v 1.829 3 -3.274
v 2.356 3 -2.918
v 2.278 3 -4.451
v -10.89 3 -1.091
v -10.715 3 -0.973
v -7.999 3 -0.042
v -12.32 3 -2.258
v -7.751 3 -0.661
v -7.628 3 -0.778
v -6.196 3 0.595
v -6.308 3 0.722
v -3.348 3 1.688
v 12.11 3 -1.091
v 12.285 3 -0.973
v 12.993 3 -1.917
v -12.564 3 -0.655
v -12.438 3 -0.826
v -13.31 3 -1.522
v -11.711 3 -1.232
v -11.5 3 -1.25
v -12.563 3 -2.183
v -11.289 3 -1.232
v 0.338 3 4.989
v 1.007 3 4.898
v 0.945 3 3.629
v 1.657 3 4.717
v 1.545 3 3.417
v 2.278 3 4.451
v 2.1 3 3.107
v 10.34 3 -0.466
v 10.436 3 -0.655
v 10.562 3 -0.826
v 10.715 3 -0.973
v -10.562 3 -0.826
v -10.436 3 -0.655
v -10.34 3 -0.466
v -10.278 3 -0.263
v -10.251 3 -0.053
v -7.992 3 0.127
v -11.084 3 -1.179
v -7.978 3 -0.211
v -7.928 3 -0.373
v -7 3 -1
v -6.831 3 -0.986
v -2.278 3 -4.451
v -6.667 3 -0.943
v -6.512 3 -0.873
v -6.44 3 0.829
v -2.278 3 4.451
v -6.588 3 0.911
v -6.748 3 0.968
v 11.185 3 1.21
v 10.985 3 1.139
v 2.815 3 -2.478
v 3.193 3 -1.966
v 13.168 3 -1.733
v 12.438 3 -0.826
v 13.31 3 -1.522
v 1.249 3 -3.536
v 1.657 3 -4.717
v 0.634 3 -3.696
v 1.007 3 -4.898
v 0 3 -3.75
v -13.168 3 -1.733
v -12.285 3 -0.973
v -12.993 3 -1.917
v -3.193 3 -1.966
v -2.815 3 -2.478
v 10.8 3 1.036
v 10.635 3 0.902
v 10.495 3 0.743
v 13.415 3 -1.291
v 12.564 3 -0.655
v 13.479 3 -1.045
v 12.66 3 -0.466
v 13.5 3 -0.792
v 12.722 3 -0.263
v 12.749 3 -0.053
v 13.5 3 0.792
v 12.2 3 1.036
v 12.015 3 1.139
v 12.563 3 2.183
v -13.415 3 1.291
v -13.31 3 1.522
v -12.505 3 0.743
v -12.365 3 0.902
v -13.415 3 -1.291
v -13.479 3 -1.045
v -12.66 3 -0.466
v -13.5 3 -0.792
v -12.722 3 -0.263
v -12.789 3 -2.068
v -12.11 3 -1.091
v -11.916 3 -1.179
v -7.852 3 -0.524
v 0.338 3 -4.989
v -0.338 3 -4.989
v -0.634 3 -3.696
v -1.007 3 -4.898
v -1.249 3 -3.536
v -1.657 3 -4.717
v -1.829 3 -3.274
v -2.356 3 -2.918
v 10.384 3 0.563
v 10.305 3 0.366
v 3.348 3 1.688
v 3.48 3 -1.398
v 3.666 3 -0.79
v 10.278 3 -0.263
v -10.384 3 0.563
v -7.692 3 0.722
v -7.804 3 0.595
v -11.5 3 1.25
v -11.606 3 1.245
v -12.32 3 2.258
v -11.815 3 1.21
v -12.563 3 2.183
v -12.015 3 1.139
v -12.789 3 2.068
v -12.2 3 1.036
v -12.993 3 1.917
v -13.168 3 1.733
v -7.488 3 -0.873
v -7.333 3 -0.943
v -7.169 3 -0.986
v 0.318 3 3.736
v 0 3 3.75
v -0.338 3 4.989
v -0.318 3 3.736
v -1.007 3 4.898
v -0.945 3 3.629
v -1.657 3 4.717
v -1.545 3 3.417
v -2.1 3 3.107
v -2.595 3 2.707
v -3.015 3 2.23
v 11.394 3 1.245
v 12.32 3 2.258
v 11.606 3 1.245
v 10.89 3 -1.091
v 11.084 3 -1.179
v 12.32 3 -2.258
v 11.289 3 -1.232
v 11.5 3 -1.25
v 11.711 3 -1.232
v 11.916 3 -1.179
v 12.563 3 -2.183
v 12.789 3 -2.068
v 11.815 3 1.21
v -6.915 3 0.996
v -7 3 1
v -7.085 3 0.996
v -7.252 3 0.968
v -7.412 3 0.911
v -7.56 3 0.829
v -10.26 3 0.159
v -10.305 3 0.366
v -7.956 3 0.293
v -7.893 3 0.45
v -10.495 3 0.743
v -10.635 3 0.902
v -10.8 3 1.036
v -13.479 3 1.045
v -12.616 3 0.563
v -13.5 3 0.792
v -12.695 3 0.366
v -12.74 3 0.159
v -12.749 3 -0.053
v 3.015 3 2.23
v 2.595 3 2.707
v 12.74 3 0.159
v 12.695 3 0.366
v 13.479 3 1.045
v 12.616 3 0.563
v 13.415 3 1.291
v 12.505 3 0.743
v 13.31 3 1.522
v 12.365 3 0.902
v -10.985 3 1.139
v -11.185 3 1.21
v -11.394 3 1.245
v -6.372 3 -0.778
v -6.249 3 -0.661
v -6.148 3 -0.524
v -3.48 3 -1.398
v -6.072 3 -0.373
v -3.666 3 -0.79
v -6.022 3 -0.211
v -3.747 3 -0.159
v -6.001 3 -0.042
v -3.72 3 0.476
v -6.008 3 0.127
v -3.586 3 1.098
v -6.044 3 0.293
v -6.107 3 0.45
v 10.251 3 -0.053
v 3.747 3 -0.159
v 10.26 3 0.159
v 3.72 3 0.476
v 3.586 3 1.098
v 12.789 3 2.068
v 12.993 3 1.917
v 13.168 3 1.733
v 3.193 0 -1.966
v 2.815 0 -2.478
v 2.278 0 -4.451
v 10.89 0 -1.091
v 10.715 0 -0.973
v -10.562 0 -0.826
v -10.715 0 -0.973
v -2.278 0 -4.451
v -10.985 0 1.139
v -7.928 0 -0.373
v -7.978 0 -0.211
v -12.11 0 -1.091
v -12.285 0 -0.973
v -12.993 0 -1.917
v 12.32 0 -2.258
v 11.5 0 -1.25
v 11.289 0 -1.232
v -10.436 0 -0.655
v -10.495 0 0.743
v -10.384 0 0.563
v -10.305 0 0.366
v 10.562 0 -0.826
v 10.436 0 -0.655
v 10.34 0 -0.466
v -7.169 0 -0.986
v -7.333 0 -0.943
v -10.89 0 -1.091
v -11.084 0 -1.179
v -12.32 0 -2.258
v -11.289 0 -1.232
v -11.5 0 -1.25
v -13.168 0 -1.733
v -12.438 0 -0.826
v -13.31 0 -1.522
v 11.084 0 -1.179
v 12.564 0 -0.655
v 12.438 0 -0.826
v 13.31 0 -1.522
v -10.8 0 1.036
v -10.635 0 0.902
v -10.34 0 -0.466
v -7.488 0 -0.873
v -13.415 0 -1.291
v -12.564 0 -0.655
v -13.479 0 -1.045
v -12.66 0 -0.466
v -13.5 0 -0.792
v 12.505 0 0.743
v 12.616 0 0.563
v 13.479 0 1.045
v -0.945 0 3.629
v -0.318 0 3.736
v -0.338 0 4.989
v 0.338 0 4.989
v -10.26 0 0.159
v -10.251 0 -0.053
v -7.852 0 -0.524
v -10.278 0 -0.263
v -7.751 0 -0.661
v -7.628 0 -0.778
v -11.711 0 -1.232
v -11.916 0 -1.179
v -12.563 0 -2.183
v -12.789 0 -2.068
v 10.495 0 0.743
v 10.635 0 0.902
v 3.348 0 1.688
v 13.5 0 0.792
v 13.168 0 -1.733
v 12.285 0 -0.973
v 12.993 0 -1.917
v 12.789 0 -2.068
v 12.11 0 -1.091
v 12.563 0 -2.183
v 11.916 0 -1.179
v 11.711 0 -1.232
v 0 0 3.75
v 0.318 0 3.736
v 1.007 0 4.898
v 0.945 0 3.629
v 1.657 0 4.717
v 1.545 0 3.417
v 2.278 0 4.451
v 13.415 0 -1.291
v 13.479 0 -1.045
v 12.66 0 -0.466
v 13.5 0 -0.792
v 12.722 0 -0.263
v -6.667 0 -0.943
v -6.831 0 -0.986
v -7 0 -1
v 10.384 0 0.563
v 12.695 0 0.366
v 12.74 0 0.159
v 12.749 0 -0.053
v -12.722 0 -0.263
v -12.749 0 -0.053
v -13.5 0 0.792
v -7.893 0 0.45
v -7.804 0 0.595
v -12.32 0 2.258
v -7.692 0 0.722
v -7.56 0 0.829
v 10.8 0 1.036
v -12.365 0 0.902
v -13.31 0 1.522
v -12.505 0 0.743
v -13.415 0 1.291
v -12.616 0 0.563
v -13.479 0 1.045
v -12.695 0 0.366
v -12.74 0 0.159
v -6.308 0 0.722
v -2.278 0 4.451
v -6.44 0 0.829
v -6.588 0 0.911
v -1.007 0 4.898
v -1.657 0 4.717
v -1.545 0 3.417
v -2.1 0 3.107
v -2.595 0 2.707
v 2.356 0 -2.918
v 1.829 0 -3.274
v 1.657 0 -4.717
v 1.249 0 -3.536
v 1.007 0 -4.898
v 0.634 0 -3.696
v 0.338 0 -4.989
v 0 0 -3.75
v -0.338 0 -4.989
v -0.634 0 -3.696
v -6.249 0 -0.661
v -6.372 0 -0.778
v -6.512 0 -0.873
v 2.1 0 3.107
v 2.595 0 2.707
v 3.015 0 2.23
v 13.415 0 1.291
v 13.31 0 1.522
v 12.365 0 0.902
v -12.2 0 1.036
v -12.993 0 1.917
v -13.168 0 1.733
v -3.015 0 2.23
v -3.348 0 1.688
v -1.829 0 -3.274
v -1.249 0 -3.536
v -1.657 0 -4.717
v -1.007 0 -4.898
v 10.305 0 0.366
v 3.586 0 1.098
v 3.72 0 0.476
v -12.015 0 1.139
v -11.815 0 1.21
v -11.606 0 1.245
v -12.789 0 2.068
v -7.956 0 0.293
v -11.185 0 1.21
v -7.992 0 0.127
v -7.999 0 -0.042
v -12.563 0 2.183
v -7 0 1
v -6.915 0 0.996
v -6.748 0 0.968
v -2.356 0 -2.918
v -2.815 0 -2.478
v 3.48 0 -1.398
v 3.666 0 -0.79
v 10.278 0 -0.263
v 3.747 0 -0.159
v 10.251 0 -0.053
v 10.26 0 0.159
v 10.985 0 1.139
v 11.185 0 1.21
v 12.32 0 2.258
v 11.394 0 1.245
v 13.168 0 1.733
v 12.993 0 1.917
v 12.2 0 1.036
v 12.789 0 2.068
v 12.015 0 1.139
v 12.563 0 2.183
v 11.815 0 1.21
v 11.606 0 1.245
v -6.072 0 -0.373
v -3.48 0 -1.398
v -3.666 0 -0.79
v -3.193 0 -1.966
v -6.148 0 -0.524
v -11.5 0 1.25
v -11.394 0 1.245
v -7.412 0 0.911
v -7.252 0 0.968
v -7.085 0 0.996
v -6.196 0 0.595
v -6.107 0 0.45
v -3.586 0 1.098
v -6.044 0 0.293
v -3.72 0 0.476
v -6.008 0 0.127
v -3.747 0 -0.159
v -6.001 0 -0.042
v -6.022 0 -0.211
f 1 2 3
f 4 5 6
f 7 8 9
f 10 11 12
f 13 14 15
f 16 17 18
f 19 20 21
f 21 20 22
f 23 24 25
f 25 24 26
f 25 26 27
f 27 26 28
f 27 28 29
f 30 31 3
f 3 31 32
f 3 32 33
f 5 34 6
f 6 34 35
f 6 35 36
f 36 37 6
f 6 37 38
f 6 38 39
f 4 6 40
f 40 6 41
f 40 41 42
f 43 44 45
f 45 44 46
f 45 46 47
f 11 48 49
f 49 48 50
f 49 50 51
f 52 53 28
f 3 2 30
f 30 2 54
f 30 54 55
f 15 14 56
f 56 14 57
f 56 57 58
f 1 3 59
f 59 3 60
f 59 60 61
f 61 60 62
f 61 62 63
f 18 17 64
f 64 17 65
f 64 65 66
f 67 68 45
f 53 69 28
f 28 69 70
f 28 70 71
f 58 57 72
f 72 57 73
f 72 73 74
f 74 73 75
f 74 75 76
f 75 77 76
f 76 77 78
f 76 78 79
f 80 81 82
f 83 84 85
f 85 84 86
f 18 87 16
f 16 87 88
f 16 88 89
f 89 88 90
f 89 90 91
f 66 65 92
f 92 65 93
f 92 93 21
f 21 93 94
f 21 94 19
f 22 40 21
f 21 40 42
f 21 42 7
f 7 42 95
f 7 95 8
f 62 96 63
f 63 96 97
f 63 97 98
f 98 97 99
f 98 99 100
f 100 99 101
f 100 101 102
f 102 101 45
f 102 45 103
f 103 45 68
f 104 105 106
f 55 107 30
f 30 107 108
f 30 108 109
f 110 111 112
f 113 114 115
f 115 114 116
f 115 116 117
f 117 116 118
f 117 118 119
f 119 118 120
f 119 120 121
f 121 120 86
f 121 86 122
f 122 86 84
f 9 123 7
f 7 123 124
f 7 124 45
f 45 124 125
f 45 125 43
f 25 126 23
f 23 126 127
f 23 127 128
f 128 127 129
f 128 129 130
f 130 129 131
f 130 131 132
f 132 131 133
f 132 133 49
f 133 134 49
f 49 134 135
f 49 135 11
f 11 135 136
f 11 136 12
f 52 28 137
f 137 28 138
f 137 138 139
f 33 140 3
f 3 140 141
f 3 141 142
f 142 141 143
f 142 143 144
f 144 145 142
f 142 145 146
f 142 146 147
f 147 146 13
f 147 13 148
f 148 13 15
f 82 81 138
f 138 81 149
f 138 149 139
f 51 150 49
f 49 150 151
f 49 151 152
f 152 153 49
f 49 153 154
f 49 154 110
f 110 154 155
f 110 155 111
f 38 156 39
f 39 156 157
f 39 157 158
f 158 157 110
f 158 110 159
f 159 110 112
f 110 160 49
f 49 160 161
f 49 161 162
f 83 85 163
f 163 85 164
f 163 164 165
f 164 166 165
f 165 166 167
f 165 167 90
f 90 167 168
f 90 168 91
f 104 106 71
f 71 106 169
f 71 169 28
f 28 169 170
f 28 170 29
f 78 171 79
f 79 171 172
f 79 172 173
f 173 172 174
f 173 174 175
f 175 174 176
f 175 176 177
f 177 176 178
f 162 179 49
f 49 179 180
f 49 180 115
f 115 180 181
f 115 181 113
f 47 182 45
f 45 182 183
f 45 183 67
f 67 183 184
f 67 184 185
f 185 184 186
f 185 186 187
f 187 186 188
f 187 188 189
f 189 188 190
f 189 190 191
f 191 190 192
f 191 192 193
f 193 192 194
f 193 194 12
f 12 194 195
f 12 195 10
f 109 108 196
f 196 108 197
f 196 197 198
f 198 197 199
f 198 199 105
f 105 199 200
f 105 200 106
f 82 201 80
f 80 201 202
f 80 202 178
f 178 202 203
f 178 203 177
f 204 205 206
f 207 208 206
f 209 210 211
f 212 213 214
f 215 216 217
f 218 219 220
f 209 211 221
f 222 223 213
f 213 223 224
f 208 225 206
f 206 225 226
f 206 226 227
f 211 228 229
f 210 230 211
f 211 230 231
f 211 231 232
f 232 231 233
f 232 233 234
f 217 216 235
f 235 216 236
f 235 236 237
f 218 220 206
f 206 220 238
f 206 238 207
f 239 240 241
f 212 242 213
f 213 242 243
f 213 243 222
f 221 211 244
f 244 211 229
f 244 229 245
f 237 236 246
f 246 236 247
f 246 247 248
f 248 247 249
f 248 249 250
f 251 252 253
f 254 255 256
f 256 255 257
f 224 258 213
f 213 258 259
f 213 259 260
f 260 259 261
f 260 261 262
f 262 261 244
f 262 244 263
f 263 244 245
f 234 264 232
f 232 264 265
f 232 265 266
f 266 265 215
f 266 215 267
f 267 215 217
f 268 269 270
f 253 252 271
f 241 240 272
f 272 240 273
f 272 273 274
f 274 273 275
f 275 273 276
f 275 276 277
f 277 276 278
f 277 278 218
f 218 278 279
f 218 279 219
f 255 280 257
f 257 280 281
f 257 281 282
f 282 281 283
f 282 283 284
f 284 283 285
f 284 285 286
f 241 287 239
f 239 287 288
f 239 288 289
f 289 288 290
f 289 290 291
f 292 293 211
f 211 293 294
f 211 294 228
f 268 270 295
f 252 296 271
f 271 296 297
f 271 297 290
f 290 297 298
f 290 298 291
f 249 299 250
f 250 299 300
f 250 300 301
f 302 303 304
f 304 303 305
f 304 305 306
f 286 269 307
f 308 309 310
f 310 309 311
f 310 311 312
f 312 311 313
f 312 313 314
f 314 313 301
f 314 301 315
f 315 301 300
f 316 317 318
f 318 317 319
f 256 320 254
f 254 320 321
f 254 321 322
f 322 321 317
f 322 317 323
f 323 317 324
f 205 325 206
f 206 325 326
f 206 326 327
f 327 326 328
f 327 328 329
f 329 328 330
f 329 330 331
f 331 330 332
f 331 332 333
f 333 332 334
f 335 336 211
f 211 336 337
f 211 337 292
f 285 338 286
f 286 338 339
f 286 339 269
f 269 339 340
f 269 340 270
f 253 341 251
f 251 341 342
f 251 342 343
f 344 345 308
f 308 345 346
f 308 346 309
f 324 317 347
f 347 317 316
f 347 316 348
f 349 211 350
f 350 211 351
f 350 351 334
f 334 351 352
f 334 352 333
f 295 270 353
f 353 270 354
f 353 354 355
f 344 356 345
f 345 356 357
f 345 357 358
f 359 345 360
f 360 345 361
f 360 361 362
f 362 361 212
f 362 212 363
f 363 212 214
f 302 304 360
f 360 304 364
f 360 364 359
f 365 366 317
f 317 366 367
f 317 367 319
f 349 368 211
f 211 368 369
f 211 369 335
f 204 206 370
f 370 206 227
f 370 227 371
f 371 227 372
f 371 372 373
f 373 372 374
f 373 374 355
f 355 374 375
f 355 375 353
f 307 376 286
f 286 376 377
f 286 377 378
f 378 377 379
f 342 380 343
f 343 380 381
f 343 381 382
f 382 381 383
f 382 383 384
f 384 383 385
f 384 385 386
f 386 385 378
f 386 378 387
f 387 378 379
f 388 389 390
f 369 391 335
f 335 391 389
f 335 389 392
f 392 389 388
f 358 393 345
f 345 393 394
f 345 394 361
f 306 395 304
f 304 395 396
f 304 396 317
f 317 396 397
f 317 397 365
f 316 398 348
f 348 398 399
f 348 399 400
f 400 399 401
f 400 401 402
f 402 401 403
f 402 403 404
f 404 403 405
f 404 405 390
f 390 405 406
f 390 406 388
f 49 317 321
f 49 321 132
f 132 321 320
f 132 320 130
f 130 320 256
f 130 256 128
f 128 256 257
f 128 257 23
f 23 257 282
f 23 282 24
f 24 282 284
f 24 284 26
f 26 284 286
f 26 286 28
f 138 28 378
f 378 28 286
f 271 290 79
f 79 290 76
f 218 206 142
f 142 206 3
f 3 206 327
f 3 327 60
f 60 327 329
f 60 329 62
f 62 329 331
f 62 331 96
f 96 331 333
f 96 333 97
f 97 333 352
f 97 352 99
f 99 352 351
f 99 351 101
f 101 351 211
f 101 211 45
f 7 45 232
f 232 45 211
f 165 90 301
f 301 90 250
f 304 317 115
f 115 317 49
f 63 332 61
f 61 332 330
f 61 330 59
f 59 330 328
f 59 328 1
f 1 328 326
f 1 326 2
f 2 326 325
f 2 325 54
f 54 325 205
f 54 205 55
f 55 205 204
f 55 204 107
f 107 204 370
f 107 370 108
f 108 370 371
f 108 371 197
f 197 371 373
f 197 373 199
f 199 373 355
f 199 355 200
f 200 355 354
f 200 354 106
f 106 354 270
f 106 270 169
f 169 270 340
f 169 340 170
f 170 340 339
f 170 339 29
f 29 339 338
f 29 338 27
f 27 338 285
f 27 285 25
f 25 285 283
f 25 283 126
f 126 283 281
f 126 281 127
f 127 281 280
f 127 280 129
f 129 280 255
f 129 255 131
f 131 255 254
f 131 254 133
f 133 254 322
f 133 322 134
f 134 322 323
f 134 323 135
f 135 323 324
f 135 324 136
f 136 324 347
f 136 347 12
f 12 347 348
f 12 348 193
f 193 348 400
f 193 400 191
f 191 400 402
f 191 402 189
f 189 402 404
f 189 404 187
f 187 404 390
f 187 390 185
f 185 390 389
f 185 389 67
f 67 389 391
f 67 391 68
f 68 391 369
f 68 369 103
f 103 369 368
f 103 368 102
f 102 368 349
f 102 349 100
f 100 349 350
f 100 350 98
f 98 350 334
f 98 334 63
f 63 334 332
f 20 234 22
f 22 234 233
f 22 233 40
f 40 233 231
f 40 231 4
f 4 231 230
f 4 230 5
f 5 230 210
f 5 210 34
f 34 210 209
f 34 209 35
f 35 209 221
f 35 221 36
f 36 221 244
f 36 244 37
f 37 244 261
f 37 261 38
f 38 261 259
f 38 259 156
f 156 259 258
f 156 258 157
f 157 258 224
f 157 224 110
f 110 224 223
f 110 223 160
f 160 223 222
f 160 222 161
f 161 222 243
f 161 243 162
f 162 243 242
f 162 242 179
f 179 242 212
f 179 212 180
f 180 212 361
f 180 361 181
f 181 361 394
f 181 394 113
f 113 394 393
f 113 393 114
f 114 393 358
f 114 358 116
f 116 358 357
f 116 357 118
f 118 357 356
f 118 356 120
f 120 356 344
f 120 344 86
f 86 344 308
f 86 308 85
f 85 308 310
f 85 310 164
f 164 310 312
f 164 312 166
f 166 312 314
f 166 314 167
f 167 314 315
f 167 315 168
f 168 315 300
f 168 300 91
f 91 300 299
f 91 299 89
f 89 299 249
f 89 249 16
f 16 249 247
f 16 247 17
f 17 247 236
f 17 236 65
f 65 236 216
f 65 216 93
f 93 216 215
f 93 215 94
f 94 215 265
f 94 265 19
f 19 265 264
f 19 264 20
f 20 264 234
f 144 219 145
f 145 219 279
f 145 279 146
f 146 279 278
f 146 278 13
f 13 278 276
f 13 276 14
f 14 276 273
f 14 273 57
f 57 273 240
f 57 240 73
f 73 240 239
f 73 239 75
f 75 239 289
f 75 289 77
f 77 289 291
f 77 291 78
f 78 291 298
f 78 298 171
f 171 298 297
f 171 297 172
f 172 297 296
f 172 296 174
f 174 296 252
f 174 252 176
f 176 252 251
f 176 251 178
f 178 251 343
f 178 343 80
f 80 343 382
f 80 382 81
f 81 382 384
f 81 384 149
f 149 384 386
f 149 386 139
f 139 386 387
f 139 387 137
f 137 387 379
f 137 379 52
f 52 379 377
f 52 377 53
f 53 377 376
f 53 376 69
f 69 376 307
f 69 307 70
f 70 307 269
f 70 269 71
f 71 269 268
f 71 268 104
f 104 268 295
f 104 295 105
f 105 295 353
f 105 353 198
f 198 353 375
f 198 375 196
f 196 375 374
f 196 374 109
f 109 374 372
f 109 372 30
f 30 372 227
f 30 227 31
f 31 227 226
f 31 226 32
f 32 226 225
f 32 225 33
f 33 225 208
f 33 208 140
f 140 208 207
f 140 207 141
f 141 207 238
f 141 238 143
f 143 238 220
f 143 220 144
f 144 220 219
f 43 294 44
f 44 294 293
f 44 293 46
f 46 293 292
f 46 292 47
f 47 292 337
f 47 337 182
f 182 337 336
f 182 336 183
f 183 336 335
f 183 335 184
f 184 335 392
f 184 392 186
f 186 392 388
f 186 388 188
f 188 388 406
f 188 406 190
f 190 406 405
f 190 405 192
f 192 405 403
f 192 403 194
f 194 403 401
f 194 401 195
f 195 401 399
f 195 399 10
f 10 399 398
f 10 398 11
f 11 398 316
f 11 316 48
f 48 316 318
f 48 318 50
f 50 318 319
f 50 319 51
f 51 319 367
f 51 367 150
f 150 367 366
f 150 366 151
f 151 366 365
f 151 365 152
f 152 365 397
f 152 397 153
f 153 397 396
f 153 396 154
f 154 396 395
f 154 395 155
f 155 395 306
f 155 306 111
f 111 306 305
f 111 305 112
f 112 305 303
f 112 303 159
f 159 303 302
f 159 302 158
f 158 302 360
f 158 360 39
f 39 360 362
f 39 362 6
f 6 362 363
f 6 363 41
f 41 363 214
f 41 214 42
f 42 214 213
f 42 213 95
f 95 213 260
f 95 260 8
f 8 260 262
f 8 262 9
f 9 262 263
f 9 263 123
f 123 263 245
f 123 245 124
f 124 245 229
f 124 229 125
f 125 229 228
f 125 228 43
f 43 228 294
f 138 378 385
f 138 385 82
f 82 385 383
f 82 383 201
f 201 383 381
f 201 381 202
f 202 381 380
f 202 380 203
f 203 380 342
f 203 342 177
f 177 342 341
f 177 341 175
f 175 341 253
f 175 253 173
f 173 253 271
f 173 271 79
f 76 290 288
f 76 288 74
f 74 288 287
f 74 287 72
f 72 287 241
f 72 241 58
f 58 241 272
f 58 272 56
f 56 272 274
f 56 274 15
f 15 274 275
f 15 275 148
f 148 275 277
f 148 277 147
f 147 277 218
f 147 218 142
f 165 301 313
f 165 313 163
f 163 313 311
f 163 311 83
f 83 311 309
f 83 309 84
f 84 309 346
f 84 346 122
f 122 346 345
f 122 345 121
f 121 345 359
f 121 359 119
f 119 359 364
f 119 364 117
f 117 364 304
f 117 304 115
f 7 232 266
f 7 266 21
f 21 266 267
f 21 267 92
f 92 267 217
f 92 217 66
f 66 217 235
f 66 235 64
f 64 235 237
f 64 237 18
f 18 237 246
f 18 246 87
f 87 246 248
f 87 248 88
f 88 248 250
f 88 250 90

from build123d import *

# Parameters (mm, degrees)
SKETCH1_R           = 3.75
SKETCH1_R_2         = 1.25
SKETCH1_R_3         = 1
BOSS_EXTRUDE1_DEPTH = 3
FILLET1_R           = 1.5


with BuildPart() as part:
    # Sketch1 → Boss-Extrude1 (new body)
    with BuildSketch(Plane(origin=(0, 0, 0), x_dir=(1, 0, 0), z_dir=(0, 1, 0))):
        with BuildLine():
            Line((-2.277845841, 4.451001946), (-13.5, 2))
            Line((-13.5, 2), (-13.5, -2))
            Line((-13.5, -2), (-2.277845841, -4.451001946))
            ThreePointArc((-2.277845841, -4.451001946), (0, -5), (2.277845841, -4.451001946))
            Line((2.277845841, -4.451001946), (13.5, -2))
            Line((13.5, -2), (13.5, 2))
            Line((13.5, 2), (2.277845841, 4.451001946))
            ThreePointArc((2.277845841, 4.451001946), (0, 5), (-2.277845841, 4.451001946))
        make_face()
        Circle(SKETCH1_R, mode=Mode.SUBTRACT)
        with Locations((-11.5, 0)):
            Circle(SKETCH1_R_2, mode=Mode.SUBTRACT)
        with Locations((11.5, 0)):
            Circle(SKETCH1_R_2, mode=Mode.SUBTRACT)
        with Locations((-7, 0)):
            Circle(SKETCH1_R_3, mode=Mode.SUBTRACT)
    extrude(amount=BOSS_EXTRUDE1_DEPTH)

    # Fillet1
    fillet1_edges = [part.edges().sort_by_distance(p)[0] for p in [
        (-13.5, 1.5, 2),
        (-13.5, 1.5, -2),
        (13.5, 1.5, -2),
        (13.5, 1.5, 2),
    ]]
    fillet(fillet1_edges, radius=FILLET1_R)


solid = part.part
